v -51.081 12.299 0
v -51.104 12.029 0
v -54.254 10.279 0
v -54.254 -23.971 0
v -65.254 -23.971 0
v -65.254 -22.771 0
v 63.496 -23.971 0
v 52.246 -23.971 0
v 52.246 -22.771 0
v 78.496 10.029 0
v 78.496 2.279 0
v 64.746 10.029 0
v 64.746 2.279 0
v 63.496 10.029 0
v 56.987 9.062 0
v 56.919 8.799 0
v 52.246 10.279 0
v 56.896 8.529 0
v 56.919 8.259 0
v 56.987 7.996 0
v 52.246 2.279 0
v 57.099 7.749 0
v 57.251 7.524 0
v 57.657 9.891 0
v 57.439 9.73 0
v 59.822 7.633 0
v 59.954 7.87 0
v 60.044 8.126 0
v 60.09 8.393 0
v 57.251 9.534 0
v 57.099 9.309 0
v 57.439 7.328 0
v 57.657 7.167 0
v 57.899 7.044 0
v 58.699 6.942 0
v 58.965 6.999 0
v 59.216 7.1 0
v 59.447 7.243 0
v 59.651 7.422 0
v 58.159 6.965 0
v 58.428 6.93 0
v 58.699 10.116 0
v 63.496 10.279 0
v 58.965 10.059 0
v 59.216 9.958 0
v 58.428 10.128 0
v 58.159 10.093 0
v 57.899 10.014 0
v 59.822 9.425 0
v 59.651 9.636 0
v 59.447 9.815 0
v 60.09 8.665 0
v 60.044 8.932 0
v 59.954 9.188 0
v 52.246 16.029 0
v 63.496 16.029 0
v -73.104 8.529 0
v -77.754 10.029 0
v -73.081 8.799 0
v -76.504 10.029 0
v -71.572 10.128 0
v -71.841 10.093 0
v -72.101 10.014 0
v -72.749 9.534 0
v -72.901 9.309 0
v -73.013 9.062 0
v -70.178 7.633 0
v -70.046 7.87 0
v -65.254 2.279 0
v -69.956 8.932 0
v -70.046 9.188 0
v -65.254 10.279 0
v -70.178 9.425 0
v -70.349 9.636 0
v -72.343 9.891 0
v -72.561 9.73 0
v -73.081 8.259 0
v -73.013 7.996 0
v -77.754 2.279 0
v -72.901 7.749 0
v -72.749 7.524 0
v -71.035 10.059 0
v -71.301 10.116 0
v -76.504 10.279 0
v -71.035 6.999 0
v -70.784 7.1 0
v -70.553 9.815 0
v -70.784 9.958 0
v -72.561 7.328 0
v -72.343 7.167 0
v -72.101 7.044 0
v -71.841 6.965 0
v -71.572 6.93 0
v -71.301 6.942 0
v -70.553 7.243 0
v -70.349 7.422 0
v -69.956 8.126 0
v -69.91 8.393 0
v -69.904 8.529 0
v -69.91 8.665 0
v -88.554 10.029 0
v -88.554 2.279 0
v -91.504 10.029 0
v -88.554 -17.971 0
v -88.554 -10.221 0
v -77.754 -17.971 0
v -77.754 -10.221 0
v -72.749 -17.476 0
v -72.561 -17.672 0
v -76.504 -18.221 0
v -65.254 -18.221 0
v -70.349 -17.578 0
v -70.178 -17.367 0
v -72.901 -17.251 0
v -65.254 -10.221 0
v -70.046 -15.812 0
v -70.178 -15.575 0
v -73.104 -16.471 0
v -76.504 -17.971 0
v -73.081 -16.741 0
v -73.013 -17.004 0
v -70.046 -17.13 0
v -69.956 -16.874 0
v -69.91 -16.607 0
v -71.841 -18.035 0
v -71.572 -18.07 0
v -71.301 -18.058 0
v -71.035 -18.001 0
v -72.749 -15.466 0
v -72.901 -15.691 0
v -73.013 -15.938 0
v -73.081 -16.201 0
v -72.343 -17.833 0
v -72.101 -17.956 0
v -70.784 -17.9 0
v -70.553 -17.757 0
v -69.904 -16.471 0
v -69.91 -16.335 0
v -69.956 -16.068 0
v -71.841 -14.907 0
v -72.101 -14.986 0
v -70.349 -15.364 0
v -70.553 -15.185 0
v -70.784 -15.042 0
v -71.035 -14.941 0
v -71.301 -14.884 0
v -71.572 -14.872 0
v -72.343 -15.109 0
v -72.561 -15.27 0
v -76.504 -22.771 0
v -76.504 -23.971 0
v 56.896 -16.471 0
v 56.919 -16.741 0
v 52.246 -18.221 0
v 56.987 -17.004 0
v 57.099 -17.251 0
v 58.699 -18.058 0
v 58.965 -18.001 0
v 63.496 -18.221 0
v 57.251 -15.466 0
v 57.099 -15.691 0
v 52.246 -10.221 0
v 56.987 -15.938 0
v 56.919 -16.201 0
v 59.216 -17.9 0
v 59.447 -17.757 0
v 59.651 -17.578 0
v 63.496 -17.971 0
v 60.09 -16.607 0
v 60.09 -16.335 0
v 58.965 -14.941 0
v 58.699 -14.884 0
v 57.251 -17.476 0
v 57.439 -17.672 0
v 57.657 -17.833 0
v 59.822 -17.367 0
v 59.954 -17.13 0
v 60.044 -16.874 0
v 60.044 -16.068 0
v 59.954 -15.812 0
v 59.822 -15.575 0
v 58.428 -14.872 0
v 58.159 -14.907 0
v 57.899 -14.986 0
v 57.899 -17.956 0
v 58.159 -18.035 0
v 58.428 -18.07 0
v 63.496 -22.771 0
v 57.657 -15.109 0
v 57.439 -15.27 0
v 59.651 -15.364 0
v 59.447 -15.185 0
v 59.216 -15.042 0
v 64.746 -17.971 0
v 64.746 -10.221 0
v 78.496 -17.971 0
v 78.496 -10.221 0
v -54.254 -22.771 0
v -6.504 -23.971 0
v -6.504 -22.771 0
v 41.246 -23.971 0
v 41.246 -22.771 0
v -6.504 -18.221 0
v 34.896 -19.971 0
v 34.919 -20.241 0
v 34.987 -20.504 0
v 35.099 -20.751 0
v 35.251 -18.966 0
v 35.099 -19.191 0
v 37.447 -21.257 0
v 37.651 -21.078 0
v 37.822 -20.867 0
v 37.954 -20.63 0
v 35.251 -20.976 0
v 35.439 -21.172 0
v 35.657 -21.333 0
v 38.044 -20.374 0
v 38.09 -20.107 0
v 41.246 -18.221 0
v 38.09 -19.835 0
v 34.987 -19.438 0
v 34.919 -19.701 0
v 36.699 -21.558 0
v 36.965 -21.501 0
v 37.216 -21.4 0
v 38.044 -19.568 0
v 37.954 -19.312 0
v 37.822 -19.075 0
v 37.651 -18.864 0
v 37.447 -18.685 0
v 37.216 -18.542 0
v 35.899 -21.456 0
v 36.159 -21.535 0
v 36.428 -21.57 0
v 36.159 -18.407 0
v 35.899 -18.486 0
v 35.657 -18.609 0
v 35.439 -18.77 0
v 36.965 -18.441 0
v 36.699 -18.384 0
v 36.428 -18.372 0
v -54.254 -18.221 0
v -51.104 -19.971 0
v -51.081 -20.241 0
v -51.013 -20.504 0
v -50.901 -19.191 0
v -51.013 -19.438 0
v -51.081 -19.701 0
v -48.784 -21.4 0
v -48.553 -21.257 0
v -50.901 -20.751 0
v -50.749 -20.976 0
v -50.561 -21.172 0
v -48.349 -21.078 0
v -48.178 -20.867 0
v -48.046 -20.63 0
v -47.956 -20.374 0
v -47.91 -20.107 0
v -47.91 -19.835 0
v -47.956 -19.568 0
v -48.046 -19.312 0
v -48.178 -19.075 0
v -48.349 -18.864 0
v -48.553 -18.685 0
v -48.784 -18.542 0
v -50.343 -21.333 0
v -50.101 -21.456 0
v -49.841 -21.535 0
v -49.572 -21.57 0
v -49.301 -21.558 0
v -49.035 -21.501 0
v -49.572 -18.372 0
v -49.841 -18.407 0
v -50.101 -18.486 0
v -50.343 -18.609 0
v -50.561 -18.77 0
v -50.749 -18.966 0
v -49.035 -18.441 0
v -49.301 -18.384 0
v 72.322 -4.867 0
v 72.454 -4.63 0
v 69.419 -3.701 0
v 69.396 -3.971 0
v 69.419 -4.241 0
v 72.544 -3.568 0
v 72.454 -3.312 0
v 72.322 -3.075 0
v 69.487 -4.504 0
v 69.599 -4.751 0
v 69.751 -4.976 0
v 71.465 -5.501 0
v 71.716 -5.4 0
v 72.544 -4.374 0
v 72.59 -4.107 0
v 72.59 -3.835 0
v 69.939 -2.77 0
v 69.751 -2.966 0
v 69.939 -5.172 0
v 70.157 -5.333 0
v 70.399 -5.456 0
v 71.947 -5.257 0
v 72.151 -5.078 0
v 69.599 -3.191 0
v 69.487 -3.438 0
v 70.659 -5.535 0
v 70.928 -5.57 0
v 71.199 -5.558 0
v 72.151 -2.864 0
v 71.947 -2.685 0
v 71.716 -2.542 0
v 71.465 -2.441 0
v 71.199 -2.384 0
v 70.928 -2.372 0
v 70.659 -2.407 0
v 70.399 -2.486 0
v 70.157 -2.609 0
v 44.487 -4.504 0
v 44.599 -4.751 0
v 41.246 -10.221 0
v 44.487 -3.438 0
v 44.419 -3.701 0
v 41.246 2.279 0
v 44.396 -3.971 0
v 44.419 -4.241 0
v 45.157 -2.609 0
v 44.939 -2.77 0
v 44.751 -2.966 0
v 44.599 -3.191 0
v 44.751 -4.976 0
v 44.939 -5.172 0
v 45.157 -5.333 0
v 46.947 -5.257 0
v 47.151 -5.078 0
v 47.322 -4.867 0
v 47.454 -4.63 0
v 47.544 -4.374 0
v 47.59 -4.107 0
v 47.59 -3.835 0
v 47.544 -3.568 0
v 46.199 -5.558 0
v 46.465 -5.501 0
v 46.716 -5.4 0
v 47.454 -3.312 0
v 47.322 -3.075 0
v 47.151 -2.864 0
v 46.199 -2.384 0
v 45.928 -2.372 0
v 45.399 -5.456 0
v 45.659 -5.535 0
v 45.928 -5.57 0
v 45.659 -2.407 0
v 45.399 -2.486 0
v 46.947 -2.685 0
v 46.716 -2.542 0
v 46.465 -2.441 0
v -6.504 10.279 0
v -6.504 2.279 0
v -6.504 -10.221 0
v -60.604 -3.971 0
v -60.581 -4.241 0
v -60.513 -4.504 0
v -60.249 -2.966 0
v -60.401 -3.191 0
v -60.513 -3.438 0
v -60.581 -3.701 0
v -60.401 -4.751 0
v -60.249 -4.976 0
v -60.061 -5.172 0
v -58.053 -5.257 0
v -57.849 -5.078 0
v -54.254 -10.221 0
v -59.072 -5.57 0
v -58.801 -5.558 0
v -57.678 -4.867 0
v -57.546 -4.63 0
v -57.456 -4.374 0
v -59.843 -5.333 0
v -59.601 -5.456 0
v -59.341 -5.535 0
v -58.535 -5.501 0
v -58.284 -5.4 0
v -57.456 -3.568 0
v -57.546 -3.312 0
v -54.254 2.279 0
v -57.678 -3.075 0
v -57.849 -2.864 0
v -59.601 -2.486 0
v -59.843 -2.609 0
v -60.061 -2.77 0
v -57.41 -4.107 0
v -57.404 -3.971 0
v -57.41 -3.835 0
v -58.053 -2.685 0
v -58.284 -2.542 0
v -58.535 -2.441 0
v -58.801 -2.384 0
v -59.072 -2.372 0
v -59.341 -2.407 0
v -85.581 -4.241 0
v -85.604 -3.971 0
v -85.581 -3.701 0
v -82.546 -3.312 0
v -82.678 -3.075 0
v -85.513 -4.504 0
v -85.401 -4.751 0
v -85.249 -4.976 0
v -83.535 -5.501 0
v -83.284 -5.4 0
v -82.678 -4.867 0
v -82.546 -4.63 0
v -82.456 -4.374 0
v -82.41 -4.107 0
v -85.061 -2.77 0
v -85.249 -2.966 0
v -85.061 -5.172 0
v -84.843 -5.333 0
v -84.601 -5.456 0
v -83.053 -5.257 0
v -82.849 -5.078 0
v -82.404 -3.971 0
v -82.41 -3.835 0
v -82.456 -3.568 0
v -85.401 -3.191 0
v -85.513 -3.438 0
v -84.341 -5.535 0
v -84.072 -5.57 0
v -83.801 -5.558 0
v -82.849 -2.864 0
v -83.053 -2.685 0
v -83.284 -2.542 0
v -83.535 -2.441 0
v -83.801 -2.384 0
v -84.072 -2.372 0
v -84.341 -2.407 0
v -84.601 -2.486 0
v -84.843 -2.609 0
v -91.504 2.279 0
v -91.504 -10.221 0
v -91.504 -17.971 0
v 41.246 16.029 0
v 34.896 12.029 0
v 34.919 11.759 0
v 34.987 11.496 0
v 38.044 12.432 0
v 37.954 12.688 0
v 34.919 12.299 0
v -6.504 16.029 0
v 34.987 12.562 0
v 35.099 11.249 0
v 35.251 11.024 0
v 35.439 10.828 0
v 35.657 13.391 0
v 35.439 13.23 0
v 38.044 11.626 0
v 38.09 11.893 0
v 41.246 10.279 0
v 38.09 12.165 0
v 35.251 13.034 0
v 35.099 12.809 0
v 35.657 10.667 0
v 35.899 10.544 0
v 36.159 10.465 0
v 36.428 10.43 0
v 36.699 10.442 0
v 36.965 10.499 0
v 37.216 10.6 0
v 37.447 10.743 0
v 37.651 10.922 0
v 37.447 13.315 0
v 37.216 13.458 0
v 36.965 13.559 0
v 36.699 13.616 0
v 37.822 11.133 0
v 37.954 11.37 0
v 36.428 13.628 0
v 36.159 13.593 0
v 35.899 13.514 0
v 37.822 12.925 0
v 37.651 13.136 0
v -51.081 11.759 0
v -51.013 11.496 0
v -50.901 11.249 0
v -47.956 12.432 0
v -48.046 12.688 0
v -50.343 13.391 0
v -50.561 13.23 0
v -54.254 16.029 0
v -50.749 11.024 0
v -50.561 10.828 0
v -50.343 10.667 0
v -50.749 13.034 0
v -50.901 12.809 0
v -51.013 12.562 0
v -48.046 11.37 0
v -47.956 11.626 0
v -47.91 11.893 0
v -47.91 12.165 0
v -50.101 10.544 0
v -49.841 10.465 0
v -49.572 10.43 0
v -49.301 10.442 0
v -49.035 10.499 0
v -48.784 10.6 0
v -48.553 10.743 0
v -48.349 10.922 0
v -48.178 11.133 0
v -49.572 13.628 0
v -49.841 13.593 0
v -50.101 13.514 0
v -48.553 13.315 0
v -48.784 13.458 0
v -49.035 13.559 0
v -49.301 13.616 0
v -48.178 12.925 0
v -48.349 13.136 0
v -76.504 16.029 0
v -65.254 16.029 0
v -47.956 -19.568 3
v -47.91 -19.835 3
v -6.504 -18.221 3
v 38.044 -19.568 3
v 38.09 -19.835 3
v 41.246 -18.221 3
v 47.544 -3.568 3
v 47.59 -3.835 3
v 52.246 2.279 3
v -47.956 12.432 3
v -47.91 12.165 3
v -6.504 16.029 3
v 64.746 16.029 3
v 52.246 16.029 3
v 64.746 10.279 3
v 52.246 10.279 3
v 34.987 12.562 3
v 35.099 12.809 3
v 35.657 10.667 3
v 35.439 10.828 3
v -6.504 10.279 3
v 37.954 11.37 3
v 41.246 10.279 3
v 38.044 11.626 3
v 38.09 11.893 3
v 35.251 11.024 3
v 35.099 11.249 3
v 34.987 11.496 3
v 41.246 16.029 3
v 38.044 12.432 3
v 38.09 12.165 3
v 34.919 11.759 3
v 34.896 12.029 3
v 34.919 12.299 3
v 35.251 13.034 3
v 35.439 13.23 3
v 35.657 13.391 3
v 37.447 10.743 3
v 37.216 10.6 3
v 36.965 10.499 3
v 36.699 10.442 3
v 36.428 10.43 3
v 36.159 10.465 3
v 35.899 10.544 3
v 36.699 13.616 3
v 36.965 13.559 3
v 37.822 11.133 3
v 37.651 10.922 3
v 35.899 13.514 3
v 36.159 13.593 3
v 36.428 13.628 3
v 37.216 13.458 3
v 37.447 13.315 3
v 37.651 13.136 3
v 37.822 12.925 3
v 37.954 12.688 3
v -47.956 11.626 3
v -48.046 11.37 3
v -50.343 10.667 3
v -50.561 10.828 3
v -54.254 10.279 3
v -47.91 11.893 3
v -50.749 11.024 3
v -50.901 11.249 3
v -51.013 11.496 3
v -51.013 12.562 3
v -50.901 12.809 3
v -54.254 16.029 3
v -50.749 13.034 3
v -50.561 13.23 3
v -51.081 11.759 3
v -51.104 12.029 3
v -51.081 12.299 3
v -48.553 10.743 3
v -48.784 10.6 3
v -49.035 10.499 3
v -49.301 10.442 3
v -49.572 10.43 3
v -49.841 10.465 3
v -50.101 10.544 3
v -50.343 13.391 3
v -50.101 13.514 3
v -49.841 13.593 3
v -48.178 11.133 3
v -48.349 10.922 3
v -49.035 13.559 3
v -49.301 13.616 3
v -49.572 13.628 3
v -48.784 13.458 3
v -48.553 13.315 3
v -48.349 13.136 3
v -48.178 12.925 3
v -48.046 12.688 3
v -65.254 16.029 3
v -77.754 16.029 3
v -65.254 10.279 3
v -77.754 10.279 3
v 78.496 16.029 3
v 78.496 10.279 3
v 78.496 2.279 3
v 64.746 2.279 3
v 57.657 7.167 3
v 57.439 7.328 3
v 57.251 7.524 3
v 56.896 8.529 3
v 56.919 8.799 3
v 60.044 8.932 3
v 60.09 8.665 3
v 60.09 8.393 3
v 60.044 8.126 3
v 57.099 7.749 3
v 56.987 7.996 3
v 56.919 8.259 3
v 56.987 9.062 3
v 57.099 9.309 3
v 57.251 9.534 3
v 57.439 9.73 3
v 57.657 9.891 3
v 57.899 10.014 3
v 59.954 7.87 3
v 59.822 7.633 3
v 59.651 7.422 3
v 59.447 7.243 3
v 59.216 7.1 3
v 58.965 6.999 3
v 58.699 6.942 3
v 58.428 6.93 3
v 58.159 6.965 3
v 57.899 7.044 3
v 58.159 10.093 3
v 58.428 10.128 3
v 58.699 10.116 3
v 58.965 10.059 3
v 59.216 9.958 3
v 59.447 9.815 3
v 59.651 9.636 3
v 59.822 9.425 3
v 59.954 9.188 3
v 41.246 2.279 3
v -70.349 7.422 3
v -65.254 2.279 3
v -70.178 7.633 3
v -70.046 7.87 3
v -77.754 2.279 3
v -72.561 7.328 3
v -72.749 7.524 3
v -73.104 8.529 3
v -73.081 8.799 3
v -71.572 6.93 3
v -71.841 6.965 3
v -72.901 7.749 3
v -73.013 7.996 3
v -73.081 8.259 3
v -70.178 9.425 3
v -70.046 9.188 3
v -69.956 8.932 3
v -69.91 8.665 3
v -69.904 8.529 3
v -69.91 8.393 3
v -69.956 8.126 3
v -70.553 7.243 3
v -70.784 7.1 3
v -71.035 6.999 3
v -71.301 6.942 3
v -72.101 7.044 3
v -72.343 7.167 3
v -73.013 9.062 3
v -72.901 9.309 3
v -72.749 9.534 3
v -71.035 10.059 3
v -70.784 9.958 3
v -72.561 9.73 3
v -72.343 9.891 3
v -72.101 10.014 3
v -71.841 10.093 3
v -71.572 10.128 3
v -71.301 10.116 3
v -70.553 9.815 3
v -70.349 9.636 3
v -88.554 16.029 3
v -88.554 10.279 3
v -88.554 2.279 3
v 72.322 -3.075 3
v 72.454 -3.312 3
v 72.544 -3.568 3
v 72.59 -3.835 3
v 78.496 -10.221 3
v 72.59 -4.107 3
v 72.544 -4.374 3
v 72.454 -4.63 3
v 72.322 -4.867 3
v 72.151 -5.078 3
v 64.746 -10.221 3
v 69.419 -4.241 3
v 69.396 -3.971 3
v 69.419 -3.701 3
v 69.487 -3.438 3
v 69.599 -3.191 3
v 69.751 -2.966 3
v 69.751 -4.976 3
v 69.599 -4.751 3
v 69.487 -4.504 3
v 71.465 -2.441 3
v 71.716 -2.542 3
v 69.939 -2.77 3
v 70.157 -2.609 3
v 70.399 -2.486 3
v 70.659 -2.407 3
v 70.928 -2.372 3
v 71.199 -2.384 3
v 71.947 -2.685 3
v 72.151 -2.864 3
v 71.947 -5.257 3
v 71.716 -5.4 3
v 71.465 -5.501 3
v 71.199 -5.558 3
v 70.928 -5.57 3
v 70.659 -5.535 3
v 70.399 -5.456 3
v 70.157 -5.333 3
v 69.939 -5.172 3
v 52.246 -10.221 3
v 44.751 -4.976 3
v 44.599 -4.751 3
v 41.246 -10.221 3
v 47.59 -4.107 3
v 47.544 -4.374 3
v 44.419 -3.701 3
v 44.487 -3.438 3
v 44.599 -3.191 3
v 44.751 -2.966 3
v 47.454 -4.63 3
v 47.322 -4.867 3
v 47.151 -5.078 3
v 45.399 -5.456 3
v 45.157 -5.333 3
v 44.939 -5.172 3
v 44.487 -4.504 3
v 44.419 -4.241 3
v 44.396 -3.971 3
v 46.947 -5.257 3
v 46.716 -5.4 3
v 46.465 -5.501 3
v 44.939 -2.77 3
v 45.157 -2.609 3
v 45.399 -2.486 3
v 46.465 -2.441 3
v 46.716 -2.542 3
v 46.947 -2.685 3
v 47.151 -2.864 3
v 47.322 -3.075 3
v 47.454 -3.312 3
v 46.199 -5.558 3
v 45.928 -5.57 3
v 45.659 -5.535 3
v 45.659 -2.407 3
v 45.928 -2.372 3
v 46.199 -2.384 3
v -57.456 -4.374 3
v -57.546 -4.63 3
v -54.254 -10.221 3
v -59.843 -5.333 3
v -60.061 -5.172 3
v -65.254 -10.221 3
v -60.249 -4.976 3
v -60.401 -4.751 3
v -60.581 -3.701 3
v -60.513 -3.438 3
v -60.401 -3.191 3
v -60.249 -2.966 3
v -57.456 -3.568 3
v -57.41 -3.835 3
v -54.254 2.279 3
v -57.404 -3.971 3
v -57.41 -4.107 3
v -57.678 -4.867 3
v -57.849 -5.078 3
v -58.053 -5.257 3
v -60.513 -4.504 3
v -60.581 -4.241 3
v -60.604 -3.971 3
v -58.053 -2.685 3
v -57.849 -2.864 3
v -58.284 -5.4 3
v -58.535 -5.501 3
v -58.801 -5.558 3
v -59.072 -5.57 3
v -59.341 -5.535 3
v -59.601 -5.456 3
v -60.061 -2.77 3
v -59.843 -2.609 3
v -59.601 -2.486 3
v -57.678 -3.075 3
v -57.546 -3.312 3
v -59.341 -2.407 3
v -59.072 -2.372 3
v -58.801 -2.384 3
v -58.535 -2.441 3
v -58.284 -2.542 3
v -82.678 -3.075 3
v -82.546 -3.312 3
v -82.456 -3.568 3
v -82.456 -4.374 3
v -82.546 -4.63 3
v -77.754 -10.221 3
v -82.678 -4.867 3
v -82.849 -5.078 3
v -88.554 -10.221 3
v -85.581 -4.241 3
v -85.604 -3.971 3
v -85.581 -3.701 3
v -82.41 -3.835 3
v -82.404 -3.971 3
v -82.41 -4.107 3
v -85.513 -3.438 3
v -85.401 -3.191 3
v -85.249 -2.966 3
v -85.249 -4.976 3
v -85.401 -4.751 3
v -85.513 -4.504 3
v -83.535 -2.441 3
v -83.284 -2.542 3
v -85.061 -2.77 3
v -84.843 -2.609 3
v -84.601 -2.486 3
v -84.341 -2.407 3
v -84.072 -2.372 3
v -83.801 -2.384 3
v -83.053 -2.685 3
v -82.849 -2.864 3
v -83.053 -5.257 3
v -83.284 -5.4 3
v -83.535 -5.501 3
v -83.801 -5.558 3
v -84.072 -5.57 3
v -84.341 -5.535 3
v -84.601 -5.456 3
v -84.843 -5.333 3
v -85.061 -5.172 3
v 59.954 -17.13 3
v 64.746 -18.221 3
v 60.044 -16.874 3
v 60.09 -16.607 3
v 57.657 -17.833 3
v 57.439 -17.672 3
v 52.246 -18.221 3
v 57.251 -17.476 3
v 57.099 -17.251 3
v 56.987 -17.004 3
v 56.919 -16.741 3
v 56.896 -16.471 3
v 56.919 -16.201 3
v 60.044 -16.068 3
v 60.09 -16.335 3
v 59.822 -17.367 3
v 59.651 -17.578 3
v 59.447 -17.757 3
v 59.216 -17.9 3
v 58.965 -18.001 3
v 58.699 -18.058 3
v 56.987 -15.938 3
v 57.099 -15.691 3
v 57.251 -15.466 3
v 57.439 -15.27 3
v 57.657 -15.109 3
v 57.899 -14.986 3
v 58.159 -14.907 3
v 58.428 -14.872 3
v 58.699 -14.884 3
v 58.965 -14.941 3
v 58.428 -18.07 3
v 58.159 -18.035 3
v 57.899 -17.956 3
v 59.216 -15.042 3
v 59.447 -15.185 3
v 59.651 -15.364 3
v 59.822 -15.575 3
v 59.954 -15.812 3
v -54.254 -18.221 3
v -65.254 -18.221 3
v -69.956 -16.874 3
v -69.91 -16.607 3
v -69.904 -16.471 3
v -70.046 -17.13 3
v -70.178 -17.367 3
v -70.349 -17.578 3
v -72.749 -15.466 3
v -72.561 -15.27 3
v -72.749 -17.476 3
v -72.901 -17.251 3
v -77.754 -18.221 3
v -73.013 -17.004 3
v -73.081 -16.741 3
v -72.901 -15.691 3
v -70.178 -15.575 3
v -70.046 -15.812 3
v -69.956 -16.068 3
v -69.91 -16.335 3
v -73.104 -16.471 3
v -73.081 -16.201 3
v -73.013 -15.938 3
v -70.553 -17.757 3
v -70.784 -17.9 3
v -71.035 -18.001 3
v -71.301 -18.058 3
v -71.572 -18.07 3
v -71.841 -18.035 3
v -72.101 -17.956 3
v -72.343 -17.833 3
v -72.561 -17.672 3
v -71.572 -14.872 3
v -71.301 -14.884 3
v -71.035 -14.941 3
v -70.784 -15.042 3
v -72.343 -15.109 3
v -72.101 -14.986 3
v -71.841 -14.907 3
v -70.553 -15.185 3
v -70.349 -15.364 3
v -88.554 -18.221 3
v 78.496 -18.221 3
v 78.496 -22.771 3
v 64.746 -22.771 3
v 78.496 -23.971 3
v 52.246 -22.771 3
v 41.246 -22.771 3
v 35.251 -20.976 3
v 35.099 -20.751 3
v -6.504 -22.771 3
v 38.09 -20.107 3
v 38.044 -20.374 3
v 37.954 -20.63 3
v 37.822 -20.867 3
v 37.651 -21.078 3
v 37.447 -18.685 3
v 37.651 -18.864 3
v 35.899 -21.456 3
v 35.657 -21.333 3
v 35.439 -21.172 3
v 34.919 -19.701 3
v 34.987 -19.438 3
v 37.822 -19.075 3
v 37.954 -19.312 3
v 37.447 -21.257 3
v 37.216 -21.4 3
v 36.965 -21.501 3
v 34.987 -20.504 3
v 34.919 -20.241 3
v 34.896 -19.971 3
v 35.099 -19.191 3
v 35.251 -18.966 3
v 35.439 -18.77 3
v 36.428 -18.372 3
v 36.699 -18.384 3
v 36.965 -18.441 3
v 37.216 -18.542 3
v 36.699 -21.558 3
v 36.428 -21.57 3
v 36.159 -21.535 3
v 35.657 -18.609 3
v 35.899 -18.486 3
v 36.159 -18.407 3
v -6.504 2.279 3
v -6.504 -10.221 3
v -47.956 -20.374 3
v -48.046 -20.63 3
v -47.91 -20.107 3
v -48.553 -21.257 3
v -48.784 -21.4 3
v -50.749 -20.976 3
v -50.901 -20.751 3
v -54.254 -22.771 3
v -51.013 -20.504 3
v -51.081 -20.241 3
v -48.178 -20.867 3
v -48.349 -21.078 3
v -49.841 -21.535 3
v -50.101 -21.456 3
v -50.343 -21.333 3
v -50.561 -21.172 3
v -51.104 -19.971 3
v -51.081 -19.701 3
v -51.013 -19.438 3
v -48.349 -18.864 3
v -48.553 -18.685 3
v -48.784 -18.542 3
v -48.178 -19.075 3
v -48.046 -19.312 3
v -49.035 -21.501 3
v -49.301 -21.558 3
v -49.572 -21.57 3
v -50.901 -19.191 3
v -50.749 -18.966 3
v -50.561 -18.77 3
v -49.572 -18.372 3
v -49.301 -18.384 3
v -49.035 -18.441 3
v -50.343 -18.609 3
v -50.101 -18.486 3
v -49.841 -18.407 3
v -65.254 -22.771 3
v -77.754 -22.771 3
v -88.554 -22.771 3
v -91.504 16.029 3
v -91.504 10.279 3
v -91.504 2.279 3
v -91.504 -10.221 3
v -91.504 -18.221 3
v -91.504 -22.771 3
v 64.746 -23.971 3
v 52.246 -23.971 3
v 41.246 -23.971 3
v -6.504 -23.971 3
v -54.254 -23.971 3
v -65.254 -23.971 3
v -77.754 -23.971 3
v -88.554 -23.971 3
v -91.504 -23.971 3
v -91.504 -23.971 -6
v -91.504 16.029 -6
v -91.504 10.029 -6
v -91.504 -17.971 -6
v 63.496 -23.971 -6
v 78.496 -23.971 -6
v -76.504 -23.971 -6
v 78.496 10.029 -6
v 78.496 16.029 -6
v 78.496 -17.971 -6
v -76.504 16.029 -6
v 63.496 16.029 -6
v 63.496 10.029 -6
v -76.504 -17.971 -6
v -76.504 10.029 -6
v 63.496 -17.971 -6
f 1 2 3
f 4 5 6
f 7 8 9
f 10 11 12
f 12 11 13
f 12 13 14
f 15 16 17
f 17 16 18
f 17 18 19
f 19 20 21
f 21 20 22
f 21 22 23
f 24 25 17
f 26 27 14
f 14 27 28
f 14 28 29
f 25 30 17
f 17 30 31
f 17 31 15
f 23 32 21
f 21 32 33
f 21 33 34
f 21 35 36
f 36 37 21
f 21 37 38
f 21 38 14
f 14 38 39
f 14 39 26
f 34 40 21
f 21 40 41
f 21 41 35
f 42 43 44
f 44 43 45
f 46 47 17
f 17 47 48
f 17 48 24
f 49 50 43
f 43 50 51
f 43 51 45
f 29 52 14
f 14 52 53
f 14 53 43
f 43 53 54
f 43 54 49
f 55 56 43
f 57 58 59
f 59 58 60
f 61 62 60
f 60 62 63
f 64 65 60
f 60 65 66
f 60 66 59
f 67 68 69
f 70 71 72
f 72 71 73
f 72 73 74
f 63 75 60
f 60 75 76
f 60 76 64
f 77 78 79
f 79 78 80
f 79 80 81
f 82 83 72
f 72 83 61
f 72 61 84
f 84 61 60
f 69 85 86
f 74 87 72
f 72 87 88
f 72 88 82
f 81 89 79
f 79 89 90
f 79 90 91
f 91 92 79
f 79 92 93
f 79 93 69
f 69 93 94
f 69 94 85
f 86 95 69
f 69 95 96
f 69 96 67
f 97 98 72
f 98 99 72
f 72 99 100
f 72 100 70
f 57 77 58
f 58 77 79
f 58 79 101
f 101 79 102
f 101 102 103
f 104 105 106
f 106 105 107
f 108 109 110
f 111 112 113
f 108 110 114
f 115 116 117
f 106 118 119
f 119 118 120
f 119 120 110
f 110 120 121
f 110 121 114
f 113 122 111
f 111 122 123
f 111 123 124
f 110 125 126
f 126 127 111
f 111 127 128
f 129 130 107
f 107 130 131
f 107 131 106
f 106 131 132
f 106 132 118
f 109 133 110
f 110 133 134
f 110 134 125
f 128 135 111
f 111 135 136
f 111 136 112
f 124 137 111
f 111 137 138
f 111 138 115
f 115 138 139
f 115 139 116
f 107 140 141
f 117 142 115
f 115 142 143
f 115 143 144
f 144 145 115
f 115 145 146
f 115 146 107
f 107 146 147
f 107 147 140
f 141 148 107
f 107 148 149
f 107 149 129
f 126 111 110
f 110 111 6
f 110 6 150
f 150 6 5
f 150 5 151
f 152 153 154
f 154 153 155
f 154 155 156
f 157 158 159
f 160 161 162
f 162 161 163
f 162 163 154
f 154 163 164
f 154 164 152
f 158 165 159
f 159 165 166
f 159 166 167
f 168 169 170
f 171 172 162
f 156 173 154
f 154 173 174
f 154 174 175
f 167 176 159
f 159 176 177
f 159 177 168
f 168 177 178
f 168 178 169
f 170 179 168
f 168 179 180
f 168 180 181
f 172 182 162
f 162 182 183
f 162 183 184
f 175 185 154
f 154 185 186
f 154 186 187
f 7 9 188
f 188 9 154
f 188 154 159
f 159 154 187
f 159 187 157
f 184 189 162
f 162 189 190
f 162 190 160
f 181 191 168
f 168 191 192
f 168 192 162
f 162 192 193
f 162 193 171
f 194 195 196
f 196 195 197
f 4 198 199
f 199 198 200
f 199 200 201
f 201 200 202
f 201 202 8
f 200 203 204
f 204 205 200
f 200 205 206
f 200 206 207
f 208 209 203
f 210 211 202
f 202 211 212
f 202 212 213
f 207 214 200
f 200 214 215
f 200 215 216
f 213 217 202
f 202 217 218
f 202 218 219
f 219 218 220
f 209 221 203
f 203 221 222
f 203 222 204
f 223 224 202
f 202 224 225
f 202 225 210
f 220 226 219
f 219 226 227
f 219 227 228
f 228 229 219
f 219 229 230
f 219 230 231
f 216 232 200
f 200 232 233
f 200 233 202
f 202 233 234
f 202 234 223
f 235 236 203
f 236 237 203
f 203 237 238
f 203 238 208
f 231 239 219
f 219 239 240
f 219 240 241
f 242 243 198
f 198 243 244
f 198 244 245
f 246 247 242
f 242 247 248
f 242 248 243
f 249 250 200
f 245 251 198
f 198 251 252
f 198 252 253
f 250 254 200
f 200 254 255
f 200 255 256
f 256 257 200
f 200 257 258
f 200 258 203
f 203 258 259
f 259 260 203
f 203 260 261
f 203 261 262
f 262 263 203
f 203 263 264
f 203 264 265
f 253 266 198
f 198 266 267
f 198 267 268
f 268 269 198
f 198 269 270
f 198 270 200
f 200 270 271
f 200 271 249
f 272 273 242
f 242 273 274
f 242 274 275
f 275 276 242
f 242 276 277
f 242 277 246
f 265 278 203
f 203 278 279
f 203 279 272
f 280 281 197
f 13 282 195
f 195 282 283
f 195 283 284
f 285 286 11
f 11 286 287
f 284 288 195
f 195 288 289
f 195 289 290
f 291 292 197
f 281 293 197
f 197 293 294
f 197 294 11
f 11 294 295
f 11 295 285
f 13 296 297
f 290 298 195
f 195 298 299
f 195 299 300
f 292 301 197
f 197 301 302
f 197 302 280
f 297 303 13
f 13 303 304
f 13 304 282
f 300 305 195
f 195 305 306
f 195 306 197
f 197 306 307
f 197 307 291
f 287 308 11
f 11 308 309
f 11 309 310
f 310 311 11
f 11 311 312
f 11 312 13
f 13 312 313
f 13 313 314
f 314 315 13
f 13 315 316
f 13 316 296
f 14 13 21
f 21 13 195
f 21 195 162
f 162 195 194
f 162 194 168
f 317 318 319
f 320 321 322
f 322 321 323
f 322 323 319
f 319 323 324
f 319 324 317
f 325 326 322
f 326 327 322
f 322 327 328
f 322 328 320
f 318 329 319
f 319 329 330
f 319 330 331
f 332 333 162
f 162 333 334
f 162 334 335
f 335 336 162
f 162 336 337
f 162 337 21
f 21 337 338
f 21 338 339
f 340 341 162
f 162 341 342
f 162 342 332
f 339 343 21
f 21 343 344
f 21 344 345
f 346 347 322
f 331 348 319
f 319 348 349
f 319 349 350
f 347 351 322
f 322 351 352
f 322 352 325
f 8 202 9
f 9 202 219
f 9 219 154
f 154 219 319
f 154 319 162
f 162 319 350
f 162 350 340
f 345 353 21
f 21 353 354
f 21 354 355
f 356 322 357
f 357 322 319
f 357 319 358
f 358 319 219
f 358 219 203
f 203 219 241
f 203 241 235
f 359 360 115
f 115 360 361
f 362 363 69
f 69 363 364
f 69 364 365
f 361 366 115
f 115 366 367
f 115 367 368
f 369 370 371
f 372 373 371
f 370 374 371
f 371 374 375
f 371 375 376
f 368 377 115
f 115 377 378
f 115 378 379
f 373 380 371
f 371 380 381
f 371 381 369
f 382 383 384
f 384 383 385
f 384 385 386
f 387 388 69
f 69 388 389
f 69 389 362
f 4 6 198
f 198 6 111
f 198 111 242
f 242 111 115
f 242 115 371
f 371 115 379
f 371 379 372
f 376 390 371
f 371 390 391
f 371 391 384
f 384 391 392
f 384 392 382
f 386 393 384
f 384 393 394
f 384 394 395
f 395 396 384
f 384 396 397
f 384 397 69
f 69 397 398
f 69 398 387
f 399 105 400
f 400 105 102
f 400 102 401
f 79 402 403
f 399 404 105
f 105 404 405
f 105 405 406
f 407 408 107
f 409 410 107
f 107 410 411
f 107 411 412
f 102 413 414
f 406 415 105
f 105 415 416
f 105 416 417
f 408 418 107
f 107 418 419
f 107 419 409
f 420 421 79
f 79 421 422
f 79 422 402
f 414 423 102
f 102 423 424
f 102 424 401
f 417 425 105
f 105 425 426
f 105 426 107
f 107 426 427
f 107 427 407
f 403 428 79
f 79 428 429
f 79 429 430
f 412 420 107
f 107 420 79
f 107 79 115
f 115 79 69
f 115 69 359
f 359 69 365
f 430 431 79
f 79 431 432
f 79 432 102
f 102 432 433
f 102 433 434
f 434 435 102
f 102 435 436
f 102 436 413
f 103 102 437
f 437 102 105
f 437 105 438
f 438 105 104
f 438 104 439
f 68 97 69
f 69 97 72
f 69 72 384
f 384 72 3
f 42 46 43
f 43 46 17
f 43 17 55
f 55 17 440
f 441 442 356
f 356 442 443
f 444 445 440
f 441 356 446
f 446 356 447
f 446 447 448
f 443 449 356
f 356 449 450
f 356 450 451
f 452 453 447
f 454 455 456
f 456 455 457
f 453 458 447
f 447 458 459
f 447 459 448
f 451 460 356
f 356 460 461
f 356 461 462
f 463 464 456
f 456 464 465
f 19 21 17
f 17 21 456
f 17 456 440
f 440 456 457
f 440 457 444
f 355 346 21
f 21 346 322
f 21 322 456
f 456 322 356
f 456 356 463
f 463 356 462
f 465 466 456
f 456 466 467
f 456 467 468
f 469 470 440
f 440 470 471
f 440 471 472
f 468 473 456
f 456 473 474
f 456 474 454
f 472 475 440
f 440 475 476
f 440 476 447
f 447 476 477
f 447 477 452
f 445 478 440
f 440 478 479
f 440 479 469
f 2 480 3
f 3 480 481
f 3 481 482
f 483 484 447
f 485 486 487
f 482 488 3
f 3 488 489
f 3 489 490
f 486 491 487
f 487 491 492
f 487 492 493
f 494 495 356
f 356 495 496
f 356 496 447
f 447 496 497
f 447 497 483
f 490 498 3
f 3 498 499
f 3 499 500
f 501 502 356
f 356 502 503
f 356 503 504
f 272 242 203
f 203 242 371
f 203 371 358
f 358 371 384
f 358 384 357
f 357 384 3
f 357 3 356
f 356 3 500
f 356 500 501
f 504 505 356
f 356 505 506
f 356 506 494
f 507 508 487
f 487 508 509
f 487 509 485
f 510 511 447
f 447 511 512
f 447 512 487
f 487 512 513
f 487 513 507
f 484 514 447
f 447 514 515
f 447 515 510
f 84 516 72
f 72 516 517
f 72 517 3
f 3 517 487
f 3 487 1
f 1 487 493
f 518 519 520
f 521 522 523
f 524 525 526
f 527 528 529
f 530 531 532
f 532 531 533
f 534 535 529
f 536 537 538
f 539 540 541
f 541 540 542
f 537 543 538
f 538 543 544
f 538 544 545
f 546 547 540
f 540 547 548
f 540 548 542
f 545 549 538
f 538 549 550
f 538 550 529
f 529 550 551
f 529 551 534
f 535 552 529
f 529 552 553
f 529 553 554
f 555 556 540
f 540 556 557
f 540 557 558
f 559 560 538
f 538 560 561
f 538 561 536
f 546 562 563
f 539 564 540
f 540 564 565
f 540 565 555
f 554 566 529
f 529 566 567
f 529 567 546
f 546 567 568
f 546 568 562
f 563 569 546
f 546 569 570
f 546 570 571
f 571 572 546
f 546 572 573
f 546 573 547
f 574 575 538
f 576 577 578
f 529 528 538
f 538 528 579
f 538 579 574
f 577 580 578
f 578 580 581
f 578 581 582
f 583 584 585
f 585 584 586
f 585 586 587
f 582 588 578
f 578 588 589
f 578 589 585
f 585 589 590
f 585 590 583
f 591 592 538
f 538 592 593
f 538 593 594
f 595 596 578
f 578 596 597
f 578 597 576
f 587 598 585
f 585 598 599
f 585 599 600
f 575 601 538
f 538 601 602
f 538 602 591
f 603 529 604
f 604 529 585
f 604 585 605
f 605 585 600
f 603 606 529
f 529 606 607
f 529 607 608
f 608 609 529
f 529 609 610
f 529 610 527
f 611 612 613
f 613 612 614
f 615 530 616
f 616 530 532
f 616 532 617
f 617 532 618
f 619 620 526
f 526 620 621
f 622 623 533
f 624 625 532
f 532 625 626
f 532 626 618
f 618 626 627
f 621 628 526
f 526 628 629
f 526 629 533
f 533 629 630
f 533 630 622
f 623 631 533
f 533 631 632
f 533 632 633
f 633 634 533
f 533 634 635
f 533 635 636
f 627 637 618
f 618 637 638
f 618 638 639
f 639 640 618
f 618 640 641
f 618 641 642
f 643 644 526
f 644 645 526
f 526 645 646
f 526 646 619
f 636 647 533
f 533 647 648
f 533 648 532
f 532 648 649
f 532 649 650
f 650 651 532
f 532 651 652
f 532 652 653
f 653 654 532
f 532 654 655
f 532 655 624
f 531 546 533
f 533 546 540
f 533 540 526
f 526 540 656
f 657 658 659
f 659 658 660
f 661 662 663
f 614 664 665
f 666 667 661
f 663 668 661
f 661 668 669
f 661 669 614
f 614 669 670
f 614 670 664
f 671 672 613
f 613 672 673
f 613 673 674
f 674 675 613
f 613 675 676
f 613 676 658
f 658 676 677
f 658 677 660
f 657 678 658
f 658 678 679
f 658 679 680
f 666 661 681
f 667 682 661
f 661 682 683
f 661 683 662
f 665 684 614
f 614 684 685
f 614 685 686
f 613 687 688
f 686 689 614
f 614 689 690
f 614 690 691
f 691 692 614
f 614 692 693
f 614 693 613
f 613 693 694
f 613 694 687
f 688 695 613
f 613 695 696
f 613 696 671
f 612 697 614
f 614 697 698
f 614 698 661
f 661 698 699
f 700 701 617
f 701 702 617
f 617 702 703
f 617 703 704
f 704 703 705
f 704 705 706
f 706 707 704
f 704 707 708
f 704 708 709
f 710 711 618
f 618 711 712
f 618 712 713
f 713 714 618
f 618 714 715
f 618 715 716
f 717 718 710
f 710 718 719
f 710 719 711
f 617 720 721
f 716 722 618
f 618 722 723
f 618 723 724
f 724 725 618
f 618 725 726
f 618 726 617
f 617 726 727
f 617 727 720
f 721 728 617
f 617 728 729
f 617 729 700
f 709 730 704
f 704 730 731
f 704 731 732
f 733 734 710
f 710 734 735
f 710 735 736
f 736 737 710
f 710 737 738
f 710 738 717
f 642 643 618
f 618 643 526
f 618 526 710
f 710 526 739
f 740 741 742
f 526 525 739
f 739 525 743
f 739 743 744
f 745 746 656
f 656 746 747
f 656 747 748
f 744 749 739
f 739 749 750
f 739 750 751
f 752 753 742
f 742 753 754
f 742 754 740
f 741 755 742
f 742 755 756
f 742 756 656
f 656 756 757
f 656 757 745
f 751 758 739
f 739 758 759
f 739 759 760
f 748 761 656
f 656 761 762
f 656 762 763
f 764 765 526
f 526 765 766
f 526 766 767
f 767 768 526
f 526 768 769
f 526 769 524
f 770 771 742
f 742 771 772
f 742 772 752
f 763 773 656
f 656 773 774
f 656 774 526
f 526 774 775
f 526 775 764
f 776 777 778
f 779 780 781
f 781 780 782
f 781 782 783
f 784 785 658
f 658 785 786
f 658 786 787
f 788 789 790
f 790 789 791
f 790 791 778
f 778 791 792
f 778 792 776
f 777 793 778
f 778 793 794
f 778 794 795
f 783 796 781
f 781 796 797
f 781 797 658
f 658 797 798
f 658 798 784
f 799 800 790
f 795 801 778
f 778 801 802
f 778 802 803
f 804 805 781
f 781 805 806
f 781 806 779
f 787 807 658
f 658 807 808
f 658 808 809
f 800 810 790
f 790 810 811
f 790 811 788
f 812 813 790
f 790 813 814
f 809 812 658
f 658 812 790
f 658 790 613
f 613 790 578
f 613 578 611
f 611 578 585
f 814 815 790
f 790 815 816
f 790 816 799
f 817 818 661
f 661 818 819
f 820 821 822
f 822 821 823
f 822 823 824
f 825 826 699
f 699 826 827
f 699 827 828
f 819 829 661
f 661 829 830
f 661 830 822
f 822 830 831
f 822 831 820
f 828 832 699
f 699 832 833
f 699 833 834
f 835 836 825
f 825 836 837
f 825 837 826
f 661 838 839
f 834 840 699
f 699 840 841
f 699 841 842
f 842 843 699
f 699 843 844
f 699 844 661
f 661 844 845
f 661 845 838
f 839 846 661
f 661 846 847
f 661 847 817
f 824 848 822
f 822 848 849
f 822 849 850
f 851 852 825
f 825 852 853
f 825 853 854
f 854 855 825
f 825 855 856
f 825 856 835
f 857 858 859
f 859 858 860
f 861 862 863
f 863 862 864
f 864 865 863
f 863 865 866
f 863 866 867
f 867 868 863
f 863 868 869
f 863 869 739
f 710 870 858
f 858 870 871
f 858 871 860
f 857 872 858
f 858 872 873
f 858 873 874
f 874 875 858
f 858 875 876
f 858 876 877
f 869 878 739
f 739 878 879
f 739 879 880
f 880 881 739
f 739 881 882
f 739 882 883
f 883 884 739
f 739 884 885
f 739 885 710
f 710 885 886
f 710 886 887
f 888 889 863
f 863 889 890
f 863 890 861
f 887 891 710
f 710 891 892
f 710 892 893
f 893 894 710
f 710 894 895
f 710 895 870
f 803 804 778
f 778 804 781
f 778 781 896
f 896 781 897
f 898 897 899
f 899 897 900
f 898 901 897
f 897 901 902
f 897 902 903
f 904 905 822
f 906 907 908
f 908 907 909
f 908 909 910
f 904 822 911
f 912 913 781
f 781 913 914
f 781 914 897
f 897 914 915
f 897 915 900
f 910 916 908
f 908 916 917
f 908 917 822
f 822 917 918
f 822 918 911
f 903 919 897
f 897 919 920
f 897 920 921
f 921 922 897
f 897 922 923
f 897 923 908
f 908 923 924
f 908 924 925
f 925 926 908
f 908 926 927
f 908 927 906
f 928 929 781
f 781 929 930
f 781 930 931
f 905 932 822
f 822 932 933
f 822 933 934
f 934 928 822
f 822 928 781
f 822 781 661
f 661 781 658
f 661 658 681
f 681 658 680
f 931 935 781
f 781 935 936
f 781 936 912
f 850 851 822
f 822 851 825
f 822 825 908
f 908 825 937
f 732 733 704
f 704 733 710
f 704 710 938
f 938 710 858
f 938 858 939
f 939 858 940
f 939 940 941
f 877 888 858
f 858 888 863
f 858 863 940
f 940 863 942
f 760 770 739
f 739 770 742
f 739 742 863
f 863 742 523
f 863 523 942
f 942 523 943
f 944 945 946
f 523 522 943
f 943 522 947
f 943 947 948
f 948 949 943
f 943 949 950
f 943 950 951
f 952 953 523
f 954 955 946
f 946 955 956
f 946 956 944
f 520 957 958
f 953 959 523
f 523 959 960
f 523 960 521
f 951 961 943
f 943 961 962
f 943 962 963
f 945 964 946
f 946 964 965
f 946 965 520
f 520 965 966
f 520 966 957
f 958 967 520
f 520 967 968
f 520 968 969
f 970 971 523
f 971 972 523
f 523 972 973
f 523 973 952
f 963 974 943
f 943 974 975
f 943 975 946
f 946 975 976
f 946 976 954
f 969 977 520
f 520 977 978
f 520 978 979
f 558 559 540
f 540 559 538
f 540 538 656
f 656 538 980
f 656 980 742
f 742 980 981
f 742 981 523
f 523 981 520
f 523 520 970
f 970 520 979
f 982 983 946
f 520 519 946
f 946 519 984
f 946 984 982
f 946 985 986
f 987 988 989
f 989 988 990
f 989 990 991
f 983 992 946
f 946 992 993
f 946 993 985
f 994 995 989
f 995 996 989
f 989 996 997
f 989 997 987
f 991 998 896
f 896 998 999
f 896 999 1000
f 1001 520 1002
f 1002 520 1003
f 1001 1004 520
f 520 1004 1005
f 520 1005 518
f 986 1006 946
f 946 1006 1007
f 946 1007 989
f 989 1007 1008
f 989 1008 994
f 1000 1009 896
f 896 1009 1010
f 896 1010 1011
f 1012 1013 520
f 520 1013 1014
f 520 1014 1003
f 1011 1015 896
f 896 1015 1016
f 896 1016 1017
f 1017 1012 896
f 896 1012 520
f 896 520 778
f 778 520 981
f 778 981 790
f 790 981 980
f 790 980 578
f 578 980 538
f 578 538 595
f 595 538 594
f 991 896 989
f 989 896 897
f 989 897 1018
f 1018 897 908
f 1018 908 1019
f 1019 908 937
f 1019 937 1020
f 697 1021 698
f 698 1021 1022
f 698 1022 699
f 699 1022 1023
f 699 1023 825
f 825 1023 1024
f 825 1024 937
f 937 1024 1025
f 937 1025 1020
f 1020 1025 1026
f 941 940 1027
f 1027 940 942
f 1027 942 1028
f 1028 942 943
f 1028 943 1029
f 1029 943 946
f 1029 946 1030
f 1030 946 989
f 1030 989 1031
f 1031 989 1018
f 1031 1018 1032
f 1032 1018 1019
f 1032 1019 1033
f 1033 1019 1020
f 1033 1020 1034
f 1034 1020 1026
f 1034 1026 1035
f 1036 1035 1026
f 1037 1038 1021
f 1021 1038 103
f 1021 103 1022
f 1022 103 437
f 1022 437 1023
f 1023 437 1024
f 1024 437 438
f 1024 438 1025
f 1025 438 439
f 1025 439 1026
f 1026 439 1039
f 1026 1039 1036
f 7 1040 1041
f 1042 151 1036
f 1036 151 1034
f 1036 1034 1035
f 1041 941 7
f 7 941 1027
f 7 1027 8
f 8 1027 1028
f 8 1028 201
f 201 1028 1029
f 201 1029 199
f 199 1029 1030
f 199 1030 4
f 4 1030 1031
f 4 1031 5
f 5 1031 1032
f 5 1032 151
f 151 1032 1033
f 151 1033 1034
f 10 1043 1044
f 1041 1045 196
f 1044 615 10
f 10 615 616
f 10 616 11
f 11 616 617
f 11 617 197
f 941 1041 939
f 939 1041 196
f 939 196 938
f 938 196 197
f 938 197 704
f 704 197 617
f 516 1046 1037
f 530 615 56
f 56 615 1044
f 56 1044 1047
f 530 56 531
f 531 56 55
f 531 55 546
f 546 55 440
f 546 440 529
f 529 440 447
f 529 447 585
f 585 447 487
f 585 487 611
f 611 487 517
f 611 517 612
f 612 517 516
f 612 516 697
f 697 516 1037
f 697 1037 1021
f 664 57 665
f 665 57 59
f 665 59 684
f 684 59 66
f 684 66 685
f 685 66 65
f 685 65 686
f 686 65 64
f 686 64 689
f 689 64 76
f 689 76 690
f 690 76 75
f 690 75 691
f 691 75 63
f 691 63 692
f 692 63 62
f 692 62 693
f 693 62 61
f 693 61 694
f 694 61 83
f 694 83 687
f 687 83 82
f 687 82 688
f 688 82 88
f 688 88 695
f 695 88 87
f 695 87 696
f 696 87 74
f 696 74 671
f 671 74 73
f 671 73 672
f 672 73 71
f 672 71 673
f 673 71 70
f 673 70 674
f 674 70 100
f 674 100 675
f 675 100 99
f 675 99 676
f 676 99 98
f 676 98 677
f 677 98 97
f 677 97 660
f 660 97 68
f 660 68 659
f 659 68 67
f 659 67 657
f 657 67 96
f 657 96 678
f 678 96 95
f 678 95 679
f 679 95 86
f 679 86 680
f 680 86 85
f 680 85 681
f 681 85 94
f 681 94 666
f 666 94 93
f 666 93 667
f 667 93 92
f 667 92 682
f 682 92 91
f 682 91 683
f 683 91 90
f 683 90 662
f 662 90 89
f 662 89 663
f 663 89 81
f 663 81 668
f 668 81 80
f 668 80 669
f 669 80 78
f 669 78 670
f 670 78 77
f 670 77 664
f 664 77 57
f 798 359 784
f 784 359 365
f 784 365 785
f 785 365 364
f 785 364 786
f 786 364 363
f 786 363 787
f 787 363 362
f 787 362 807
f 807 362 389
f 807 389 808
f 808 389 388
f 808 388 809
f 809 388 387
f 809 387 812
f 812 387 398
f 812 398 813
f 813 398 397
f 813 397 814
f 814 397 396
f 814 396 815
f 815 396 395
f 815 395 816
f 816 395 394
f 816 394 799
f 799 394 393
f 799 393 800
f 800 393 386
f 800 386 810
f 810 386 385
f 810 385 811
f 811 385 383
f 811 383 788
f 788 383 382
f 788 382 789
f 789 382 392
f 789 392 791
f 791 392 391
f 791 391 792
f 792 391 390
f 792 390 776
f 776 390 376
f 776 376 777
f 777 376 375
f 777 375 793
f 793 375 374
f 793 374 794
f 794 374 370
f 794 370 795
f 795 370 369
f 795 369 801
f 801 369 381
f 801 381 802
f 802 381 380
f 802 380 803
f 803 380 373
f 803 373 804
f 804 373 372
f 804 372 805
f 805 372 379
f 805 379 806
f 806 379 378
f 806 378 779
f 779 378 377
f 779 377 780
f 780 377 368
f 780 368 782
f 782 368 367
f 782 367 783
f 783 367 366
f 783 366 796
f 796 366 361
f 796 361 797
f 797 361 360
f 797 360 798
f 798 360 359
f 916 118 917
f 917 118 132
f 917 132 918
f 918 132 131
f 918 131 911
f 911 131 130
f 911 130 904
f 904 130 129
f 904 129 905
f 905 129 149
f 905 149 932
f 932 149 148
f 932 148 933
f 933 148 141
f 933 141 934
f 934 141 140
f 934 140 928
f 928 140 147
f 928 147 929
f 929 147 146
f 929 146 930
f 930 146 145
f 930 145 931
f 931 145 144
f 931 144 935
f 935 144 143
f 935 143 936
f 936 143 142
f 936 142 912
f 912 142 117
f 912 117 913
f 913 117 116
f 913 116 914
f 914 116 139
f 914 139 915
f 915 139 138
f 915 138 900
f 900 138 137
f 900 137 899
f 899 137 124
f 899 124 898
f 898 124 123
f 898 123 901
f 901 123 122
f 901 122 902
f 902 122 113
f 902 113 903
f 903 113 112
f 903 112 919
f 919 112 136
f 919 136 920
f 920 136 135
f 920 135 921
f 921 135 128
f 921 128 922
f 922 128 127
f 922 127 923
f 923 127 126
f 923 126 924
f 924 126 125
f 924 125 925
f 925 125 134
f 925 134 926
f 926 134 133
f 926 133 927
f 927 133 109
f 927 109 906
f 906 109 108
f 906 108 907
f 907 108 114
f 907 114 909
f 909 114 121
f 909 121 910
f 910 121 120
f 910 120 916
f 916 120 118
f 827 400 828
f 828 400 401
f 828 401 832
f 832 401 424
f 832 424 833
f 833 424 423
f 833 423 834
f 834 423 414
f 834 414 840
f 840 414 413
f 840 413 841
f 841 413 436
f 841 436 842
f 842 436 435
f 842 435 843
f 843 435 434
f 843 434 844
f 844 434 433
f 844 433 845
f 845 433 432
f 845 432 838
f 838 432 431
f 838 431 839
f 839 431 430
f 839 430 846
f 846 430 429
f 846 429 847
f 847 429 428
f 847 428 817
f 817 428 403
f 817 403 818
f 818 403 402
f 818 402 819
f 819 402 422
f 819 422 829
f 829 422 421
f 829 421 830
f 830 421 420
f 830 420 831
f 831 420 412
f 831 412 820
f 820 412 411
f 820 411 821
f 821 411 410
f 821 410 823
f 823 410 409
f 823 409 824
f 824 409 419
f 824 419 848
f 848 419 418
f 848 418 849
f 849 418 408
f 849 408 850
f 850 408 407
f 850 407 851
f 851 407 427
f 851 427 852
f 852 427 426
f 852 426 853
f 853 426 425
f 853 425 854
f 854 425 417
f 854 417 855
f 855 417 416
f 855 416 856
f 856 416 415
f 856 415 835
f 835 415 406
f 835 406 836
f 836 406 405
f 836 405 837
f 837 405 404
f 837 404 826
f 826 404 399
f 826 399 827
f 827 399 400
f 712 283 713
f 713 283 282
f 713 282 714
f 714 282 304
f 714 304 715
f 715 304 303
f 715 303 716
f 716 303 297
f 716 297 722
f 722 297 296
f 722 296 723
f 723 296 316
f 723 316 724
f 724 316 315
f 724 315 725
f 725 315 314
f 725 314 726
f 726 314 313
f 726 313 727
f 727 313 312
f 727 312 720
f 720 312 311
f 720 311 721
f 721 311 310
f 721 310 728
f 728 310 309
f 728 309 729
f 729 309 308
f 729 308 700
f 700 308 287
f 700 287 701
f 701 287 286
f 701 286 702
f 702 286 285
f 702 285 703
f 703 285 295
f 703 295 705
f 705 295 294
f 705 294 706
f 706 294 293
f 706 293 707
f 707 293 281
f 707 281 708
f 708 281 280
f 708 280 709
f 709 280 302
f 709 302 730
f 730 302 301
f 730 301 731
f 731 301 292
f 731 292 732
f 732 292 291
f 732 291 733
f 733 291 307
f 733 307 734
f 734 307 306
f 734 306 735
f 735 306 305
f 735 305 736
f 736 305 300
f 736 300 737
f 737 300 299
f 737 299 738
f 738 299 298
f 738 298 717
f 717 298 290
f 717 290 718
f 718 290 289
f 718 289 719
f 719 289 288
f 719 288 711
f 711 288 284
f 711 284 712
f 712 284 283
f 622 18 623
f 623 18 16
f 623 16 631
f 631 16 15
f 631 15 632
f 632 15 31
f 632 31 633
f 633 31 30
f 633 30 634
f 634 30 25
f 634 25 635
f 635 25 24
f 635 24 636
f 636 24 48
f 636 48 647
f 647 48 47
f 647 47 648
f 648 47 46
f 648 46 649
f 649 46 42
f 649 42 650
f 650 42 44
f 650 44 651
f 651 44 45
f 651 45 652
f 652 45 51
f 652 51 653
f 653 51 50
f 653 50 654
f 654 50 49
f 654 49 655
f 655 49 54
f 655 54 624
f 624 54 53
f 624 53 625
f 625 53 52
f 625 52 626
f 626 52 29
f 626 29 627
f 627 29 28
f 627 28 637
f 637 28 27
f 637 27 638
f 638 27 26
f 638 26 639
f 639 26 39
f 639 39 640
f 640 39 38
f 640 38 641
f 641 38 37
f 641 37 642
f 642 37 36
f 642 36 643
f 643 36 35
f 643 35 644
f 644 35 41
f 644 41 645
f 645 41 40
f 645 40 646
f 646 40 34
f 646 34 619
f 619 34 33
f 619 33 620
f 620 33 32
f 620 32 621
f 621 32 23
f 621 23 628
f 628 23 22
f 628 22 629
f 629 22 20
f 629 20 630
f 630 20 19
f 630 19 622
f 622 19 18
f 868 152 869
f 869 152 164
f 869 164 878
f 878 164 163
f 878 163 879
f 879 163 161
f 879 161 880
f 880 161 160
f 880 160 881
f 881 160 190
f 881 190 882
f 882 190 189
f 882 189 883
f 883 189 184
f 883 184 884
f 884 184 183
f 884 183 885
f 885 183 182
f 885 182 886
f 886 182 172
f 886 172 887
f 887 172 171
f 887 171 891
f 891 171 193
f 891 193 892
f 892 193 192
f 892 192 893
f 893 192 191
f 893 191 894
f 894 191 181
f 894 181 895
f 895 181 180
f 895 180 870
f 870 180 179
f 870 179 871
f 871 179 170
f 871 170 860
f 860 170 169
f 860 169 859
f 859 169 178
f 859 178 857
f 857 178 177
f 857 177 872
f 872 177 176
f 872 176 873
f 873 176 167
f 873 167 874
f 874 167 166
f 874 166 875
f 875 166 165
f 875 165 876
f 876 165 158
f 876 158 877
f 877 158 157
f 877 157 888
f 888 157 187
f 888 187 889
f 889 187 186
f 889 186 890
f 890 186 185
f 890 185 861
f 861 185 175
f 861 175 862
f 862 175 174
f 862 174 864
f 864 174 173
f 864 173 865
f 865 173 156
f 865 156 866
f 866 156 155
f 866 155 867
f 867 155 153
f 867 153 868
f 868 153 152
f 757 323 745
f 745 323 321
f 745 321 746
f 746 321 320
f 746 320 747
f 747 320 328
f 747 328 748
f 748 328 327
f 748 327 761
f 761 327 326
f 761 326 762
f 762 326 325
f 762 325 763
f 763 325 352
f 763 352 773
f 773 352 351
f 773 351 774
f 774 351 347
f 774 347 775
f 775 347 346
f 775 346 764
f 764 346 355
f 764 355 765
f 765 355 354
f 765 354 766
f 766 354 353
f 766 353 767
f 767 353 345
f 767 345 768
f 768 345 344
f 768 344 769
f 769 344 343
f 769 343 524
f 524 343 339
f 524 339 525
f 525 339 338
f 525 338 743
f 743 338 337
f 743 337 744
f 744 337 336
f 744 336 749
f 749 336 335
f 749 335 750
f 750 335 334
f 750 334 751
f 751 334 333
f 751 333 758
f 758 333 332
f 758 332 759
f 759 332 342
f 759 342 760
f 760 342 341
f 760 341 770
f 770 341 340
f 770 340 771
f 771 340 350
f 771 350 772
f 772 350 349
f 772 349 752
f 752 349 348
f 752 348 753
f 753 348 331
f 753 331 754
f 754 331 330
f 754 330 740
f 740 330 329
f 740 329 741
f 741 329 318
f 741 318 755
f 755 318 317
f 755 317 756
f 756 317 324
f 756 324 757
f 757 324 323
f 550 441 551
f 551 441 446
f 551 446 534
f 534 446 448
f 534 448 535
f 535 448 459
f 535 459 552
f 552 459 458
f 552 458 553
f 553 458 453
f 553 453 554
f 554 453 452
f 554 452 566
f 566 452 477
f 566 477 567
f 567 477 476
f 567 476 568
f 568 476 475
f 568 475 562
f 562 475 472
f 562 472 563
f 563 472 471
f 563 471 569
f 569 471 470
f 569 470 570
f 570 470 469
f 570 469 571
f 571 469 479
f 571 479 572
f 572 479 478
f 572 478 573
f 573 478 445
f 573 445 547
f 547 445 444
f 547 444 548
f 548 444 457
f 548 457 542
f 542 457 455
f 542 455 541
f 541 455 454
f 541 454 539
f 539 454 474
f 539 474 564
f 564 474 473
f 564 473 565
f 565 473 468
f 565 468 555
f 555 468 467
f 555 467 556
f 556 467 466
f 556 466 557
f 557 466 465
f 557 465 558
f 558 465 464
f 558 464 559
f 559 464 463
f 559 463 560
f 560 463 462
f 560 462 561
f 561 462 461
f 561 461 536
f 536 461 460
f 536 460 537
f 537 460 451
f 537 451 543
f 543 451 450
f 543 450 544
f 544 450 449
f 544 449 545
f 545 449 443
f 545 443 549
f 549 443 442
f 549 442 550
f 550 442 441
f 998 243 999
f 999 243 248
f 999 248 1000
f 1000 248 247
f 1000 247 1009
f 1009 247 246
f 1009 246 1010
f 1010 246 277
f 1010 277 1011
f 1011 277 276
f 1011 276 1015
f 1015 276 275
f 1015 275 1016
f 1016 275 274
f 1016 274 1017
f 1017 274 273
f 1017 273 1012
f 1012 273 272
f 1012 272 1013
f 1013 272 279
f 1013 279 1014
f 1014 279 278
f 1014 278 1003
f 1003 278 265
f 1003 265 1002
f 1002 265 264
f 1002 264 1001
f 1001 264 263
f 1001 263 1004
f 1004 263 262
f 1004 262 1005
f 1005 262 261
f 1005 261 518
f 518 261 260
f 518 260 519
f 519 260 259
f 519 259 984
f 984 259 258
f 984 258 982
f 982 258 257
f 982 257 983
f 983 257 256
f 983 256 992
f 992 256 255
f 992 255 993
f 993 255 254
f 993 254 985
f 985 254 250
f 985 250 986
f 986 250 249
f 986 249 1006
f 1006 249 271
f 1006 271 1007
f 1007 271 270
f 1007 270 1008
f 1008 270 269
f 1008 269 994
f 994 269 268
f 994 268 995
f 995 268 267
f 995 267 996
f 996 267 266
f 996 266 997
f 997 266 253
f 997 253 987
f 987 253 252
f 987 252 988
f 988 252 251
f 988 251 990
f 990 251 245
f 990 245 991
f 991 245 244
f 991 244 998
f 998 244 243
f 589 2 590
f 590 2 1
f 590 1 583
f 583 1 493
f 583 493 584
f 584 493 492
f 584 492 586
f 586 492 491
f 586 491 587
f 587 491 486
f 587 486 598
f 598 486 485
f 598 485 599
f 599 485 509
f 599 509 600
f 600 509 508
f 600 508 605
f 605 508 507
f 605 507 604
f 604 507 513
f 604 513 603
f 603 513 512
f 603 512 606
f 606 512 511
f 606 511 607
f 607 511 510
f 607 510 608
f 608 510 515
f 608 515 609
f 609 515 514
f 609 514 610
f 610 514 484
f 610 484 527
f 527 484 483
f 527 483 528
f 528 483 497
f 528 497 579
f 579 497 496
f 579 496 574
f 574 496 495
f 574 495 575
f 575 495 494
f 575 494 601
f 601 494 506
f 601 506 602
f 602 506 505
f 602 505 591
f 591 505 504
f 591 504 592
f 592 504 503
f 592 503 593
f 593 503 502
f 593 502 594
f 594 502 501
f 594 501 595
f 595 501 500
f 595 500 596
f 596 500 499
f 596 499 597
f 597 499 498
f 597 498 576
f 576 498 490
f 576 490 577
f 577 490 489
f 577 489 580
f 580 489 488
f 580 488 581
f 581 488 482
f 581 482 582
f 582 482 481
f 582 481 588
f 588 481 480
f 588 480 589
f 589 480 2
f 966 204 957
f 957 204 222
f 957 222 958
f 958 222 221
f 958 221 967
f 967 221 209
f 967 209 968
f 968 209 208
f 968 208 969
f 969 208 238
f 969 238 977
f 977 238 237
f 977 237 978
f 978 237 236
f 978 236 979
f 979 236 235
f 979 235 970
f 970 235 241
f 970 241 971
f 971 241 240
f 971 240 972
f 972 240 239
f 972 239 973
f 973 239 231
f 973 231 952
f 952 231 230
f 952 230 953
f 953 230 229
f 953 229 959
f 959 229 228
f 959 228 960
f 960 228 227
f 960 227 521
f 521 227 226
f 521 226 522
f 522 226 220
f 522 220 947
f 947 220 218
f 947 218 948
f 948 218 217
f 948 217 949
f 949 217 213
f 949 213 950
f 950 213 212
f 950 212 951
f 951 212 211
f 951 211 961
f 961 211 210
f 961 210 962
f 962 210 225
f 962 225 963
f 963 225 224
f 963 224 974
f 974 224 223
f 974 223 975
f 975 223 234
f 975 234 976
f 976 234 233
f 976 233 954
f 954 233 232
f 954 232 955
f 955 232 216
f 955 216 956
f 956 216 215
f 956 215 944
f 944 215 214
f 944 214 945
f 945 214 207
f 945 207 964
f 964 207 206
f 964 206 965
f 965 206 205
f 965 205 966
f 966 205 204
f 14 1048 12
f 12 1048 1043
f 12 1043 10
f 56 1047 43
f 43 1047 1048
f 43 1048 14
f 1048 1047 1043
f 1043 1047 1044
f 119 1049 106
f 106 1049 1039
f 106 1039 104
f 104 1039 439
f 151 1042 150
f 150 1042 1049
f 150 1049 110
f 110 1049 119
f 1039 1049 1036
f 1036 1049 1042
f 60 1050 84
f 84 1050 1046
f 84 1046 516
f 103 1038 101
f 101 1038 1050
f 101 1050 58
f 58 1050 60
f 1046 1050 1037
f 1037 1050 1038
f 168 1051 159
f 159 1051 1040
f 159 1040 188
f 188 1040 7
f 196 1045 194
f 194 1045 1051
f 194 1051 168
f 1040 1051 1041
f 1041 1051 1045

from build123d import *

# Parameters (mm, degrees)
SKETCH_1_W          = 170
SKETCH_1_H          = 40
SKETCH_1_R          = 1.6
EXTRUDE_1_DEPTH     = 3
SKETCH_2_R          = 1.6
CUT_EXTRUDE_1_DEPTH = 4
SKETCH_3_W          = 15
SKETCH_3_H          = 6
EXTRUDE_2_DEPTH     = 6


with BuildPart() as part:
    # 草图1 → 凸台-拉伸1 (new body)
    with BuildSketch(Plane.XY):
        with Locations((-6.503957784, -3.970976253)):
            Rectangle(SKETCH_1_W, SKETCH_1_H)
        with Locations((-71.503957784, 8.529023747)):
            Circle(SKETCH_1_R, mode=Mode.SUBTRACT)
        with Locations((-59.003957784, -3.970976253)):
            Circle(SKETCH_1_R, mode=Mode.SUBTRACT)
        with Locations((-71.503957784, -16.470976253)):
            Circle(SKETCH_1_R, mode=Mode.SUBTRACT)
        with Locations((-84.003957784, -3.970976253)):
            Circle(SKETCH_1_R, mode=Mode.SUBTRACT)
        with Locations((70.996042216, -3.970976253)):
            Circle(SKETCH_1_R, mode=Mode.SUBTRACT)
        with Locations((58.496042216, 8.529023747)):
            Circle(SKETCH_1_R, mode=Mode.SUBTRACT)
        with Locations((58.496042216, -16.470976253)):
            Circle(SKETCH_1_R, mode=Mode.SUBTRACT)
        with Locations((45.996042216, -3.970976253)):
            Circle(SKETCH_1_R, mode=Mode.SUBTRACT)
    extrude(amount=EXTRUDE_1_DEPTH)

    # 草图2 → 切除-拉伸1 (cut, through all)
    with BuildSketch(Plane(origin=(0, 0, 0), x_dir=(-1, 0, 0), z_dir=(0, 0, -1))):
        with Locations((-36.496042216, 12.029023747)):
            Circle(SKETCH_2_R)
        with Locations((-36.496042216, -19.970976253)):
            Circle(SKETCH_2_R)
        with Locations((49.503957784, 12.029023747)):
            Circle(SKETCH_2_R)
        with Locations((49.503957784, -19.970976253)):
            Circle(SKETCH_2_R)
    extrude(amount=-CUT_EXTRUDE_1_DEPTH, mode=Mode.SUBTRACT)

    # 草图3 → 凸台-拉伸2 (add)
    with BuildSketch(Plane(origin=(0, 0, 0), x_dir=(-1, 0, 0), z_dir=(0, 0, -1))):
        with Locations((-70.996042216, 13.029023747)):
            Rectangle(SKETCH_3_W, SKETCH_3_H)
        with Locations((-70.996042216, -20.970976253)):
            Rectangle(SKETCH_3_W, SKETCH_3_H)
        with Locations((84.003957784, 13.029023747)):
            Rectangle(SKETCH_3_W, SKETCH_3_H)
        with Locations((84.003957784, -20.970976253)):
            Rectangle(SKETCH_3_W, SKETCH_3_H)
    extrude(amount=EXTRUDE_2_DEPTH)


solid = part.part
